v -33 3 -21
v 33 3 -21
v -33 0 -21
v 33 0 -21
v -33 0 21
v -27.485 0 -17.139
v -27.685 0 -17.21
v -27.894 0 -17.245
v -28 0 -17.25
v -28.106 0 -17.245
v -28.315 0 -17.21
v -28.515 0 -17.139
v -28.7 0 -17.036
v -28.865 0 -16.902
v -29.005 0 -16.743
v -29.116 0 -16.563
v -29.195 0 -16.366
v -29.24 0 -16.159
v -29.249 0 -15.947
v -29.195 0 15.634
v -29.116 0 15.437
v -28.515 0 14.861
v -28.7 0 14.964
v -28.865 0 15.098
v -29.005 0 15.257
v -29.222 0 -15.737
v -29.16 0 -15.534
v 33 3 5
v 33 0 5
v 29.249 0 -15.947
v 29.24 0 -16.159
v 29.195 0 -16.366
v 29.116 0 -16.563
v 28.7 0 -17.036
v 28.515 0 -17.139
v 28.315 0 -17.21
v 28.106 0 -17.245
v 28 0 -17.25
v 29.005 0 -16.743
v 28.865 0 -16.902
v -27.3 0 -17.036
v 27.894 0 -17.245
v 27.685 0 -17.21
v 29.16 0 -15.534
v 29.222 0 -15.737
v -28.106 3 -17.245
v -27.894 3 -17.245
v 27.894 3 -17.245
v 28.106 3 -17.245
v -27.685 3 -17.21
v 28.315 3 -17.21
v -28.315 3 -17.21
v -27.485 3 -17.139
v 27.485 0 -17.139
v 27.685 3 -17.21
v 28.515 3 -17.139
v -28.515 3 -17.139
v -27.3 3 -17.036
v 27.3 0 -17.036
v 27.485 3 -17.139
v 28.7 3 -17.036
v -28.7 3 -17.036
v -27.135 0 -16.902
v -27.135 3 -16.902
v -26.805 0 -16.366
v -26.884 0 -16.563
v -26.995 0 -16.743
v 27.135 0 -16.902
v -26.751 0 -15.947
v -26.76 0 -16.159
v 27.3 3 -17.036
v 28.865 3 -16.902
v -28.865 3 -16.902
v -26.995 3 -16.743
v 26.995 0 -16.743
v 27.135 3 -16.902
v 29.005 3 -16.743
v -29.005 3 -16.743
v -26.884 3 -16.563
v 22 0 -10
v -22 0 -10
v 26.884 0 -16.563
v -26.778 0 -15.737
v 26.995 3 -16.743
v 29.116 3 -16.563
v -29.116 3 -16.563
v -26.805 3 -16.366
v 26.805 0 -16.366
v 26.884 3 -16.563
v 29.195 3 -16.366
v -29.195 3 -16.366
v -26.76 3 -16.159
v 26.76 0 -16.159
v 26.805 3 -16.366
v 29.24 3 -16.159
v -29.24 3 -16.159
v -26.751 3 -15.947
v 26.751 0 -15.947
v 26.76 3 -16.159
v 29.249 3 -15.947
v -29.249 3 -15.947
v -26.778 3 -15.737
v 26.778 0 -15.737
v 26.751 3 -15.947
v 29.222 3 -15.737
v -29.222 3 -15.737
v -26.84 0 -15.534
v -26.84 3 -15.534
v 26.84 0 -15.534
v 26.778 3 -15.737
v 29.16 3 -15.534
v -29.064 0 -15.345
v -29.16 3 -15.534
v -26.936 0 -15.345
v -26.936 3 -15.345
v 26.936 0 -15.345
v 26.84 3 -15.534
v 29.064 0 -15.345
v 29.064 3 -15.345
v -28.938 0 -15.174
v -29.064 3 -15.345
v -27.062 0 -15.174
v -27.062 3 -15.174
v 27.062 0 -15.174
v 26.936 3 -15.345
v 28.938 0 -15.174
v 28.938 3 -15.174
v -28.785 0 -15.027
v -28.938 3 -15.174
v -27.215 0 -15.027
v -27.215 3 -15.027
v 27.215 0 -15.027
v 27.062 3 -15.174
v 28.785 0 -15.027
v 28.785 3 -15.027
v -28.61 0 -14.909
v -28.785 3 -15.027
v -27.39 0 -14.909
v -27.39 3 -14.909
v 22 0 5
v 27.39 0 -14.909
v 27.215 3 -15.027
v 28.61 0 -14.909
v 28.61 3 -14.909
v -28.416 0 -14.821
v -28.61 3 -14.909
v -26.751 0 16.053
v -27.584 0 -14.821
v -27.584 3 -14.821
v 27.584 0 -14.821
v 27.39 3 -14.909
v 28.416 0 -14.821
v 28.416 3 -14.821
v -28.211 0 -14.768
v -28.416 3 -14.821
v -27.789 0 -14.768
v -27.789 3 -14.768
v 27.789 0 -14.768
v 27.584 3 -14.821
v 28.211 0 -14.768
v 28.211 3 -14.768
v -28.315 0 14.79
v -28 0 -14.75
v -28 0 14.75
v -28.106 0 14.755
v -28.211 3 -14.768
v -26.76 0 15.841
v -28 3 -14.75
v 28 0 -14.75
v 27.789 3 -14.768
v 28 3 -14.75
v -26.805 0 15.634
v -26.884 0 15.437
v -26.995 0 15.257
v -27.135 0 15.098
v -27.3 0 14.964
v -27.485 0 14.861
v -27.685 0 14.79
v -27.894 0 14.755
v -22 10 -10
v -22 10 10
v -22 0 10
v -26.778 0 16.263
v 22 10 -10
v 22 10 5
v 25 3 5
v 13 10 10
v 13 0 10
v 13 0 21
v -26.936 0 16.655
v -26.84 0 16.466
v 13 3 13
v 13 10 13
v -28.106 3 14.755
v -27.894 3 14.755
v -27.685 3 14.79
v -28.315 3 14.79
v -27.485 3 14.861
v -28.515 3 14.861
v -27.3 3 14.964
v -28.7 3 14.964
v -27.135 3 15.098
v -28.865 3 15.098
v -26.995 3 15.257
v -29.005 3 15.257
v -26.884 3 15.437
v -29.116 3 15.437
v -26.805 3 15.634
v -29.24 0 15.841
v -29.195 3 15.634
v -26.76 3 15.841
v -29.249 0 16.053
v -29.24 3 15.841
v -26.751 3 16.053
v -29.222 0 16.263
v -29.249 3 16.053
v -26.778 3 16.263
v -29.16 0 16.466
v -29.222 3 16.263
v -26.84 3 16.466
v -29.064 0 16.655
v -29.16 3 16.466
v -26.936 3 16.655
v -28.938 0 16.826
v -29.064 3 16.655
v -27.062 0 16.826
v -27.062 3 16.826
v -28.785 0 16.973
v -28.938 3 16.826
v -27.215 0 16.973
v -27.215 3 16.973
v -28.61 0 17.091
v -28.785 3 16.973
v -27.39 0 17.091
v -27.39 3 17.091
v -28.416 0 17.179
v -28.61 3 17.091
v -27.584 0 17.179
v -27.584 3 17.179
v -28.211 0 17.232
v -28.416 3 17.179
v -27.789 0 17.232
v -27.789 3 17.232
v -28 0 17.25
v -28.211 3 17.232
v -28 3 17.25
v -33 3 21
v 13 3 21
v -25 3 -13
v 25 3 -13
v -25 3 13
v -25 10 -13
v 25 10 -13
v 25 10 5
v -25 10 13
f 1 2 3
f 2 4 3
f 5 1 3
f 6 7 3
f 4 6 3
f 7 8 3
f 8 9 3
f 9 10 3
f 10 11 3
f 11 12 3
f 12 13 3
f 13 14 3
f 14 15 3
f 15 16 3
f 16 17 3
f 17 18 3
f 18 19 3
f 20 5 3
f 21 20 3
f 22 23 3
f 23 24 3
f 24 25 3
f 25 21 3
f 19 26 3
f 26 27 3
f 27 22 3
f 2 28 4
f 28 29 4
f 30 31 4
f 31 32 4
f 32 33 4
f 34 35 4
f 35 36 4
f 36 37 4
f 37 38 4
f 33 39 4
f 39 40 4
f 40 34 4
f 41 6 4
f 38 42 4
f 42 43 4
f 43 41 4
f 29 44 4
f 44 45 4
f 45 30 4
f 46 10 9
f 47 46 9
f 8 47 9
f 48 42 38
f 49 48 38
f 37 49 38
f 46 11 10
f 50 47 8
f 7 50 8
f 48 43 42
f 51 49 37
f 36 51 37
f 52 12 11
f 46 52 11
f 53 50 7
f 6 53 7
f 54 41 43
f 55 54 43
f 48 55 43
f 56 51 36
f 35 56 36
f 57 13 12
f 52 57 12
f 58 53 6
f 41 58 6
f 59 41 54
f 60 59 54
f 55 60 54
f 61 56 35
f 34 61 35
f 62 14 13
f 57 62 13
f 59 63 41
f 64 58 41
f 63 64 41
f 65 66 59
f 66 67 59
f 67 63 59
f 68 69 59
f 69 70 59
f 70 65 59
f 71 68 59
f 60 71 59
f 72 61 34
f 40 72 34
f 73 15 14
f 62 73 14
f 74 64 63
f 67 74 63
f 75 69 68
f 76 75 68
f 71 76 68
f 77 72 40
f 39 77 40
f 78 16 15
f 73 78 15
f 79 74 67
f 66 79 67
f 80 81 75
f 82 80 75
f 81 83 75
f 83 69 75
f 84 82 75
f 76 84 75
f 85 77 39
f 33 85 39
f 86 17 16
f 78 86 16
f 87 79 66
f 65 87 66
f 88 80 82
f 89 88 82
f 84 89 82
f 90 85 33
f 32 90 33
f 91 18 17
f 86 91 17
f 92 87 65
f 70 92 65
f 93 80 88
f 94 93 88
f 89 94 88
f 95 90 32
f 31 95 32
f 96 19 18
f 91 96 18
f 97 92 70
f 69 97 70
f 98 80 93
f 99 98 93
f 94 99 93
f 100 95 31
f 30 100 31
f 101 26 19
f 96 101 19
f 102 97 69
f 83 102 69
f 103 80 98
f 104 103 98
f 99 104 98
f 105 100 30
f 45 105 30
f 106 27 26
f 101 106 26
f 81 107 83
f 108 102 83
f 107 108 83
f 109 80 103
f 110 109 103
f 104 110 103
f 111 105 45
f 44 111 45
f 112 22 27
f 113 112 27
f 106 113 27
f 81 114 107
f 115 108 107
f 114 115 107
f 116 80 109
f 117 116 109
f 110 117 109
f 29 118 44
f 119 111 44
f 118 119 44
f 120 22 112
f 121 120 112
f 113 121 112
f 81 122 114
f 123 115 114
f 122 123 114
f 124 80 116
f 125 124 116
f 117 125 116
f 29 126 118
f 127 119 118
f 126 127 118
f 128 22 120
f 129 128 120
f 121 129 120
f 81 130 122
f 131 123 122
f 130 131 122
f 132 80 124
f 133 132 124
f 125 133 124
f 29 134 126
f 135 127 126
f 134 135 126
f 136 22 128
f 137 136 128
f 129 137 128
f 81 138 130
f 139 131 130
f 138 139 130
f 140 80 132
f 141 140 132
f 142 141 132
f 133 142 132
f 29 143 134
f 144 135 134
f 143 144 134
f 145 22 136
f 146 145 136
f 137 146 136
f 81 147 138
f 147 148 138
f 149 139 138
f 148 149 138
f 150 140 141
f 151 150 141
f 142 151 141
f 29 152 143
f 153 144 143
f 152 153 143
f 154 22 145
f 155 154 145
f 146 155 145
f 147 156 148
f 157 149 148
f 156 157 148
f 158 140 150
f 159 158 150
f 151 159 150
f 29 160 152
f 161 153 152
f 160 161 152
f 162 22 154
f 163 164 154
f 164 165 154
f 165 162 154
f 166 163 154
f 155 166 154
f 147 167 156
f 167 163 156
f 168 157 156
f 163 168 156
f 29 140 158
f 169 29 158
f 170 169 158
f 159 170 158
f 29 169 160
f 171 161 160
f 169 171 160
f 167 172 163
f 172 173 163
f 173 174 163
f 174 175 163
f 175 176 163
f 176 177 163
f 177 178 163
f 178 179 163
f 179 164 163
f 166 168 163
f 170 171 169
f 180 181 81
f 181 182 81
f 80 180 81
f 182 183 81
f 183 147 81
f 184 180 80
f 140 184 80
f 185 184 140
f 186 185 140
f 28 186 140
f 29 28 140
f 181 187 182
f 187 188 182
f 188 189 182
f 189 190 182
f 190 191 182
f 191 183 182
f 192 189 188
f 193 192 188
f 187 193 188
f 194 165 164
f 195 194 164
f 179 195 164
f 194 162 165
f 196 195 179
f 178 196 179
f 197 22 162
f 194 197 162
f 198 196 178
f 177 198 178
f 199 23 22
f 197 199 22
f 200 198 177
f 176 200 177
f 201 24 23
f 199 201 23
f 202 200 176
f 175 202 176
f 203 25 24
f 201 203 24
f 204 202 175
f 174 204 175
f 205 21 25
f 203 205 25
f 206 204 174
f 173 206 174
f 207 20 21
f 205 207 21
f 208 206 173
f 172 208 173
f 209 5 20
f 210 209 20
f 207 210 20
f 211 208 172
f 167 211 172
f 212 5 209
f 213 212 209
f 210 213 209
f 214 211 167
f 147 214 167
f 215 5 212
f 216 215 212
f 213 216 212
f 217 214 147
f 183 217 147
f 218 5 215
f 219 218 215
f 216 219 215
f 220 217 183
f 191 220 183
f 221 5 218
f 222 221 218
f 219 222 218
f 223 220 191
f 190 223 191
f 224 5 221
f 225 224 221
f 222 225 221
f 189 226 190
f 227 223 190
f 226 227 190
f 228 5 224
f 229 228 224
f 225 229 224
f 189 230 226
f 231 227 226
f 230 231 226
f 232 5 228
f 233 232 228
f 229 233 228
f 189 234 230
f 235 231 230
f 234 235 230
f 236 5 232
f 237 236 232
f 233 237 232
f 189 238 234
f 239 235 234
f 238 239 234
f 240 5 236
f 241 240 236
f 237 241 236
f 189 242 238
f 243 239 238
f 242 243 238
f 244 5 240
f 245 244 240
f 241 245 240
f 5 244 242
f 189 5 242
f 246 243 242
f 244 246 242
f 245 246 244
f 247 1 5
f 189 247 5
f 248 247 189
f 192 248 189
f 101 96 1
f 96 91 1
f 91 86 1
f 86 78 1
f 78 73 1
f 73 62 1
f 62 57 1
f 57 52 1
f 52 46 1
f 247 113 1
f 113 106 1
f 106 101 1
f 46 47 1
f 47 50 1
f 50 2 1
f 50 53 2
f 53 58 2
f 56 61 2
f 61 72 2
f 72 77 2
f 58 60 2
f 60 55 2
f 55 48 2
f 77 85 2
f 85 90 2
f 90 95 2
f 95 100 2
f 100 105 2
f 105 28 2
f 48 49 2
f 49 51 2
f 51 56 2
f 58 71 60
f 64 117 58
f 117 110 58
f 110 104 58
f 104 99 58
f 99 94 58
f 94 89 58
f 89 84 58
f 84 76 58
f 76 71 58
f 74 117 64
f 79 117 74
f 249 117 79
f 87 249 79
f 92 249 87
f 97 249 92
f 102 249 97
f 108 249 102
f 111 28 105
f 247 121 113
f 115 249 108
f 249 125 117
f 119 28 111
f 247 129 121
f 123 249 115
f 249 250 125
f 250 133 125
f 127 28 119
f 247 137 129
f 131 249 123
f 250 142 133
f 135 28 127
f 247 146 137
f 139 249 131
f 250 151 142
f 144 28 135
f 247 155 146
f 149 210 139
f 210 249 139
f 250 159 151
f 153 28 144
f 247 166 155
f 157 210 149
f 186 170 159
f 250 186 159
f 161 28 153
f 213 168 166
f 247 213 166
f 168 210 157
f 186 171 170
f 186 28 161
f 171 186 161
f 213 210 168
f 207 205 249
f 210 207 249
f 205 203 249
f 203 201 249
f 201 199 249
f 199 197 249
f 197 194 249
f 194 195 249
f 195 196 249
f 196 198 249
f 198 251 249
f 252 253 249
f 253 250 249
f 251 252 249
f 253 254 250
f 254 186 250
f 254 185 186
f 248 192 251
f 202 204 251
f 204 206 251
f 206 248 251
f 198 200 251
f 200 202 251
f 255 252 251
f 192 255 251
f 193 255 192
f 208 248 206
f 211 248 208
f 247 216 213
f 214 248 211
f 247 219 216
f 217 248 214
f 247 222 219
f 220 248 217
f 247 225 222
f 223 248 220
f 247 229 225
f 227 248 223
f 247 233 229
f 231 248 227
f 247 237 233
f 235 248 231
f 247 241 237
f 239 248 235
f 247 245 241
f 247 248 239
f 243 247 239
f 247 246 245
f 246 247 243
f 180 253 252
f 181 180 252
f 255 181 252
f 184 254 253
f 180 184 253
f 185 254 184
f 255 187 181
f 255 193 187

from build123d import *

# Parameters (mm, degrees)
BASE_DEPTH       = 3
WALL_DEPTH       = 7
SKETCH3_R        = 1.25
BOLT_SLOTS_DEPTH = 3


with BuildPart() as part:
    # Sketch1 → base (new body)
    with BuildSketch(Plane(origin=(0, 0, 0), x_dir=(1, 0, 0), z_dir=(0, 1, 0))):
        Polygon((13, -10), (13, -21), (-33, -21), (-33, 21), (33, 21), (33, -5), (22, -5), (22, 10), (-22, 10), (-22, -10), align=None)
    extrude(amount=BASE_DEPTH)

    # Sketch2 → wall (add)
    with BuildSketch(Plane(origin=(0, 3, 0), x_dir=(1, 0, 0), z_dir=(0, 1, 0))):
        Polygon((13, -10), (13, -13), (-25, -13), (-25, 13), (25, 13), (25, -5), (22, -5), (22, 10), (-22, 10), (-22, -10), align=None)
    extrude(amount=WALL_DEPTH)

    # Sketch3 → bolt slots (cut)
    with BuildSketch(Plane(origin=(0, 3, 0), x_dir=(1, 0, 0), z_dir=(0, 1, 0))):
        with Locations(Location((-28, -16, 0), (0, 0, 270))):
            Circle(SKETCH3_R)
        with Locations(Location((-28, 16, 0), (0, 0, 270))):
            Circle(SKETCH3_R)
        with Locations(Location((28, 16, 0), (0, 0, 270))):
            Circle(SKETCH3_R)
    extrude(amount=-BOLT_SLOTS_DEPTH, mode=Mode.SUBTRACT)


solid = part.part
